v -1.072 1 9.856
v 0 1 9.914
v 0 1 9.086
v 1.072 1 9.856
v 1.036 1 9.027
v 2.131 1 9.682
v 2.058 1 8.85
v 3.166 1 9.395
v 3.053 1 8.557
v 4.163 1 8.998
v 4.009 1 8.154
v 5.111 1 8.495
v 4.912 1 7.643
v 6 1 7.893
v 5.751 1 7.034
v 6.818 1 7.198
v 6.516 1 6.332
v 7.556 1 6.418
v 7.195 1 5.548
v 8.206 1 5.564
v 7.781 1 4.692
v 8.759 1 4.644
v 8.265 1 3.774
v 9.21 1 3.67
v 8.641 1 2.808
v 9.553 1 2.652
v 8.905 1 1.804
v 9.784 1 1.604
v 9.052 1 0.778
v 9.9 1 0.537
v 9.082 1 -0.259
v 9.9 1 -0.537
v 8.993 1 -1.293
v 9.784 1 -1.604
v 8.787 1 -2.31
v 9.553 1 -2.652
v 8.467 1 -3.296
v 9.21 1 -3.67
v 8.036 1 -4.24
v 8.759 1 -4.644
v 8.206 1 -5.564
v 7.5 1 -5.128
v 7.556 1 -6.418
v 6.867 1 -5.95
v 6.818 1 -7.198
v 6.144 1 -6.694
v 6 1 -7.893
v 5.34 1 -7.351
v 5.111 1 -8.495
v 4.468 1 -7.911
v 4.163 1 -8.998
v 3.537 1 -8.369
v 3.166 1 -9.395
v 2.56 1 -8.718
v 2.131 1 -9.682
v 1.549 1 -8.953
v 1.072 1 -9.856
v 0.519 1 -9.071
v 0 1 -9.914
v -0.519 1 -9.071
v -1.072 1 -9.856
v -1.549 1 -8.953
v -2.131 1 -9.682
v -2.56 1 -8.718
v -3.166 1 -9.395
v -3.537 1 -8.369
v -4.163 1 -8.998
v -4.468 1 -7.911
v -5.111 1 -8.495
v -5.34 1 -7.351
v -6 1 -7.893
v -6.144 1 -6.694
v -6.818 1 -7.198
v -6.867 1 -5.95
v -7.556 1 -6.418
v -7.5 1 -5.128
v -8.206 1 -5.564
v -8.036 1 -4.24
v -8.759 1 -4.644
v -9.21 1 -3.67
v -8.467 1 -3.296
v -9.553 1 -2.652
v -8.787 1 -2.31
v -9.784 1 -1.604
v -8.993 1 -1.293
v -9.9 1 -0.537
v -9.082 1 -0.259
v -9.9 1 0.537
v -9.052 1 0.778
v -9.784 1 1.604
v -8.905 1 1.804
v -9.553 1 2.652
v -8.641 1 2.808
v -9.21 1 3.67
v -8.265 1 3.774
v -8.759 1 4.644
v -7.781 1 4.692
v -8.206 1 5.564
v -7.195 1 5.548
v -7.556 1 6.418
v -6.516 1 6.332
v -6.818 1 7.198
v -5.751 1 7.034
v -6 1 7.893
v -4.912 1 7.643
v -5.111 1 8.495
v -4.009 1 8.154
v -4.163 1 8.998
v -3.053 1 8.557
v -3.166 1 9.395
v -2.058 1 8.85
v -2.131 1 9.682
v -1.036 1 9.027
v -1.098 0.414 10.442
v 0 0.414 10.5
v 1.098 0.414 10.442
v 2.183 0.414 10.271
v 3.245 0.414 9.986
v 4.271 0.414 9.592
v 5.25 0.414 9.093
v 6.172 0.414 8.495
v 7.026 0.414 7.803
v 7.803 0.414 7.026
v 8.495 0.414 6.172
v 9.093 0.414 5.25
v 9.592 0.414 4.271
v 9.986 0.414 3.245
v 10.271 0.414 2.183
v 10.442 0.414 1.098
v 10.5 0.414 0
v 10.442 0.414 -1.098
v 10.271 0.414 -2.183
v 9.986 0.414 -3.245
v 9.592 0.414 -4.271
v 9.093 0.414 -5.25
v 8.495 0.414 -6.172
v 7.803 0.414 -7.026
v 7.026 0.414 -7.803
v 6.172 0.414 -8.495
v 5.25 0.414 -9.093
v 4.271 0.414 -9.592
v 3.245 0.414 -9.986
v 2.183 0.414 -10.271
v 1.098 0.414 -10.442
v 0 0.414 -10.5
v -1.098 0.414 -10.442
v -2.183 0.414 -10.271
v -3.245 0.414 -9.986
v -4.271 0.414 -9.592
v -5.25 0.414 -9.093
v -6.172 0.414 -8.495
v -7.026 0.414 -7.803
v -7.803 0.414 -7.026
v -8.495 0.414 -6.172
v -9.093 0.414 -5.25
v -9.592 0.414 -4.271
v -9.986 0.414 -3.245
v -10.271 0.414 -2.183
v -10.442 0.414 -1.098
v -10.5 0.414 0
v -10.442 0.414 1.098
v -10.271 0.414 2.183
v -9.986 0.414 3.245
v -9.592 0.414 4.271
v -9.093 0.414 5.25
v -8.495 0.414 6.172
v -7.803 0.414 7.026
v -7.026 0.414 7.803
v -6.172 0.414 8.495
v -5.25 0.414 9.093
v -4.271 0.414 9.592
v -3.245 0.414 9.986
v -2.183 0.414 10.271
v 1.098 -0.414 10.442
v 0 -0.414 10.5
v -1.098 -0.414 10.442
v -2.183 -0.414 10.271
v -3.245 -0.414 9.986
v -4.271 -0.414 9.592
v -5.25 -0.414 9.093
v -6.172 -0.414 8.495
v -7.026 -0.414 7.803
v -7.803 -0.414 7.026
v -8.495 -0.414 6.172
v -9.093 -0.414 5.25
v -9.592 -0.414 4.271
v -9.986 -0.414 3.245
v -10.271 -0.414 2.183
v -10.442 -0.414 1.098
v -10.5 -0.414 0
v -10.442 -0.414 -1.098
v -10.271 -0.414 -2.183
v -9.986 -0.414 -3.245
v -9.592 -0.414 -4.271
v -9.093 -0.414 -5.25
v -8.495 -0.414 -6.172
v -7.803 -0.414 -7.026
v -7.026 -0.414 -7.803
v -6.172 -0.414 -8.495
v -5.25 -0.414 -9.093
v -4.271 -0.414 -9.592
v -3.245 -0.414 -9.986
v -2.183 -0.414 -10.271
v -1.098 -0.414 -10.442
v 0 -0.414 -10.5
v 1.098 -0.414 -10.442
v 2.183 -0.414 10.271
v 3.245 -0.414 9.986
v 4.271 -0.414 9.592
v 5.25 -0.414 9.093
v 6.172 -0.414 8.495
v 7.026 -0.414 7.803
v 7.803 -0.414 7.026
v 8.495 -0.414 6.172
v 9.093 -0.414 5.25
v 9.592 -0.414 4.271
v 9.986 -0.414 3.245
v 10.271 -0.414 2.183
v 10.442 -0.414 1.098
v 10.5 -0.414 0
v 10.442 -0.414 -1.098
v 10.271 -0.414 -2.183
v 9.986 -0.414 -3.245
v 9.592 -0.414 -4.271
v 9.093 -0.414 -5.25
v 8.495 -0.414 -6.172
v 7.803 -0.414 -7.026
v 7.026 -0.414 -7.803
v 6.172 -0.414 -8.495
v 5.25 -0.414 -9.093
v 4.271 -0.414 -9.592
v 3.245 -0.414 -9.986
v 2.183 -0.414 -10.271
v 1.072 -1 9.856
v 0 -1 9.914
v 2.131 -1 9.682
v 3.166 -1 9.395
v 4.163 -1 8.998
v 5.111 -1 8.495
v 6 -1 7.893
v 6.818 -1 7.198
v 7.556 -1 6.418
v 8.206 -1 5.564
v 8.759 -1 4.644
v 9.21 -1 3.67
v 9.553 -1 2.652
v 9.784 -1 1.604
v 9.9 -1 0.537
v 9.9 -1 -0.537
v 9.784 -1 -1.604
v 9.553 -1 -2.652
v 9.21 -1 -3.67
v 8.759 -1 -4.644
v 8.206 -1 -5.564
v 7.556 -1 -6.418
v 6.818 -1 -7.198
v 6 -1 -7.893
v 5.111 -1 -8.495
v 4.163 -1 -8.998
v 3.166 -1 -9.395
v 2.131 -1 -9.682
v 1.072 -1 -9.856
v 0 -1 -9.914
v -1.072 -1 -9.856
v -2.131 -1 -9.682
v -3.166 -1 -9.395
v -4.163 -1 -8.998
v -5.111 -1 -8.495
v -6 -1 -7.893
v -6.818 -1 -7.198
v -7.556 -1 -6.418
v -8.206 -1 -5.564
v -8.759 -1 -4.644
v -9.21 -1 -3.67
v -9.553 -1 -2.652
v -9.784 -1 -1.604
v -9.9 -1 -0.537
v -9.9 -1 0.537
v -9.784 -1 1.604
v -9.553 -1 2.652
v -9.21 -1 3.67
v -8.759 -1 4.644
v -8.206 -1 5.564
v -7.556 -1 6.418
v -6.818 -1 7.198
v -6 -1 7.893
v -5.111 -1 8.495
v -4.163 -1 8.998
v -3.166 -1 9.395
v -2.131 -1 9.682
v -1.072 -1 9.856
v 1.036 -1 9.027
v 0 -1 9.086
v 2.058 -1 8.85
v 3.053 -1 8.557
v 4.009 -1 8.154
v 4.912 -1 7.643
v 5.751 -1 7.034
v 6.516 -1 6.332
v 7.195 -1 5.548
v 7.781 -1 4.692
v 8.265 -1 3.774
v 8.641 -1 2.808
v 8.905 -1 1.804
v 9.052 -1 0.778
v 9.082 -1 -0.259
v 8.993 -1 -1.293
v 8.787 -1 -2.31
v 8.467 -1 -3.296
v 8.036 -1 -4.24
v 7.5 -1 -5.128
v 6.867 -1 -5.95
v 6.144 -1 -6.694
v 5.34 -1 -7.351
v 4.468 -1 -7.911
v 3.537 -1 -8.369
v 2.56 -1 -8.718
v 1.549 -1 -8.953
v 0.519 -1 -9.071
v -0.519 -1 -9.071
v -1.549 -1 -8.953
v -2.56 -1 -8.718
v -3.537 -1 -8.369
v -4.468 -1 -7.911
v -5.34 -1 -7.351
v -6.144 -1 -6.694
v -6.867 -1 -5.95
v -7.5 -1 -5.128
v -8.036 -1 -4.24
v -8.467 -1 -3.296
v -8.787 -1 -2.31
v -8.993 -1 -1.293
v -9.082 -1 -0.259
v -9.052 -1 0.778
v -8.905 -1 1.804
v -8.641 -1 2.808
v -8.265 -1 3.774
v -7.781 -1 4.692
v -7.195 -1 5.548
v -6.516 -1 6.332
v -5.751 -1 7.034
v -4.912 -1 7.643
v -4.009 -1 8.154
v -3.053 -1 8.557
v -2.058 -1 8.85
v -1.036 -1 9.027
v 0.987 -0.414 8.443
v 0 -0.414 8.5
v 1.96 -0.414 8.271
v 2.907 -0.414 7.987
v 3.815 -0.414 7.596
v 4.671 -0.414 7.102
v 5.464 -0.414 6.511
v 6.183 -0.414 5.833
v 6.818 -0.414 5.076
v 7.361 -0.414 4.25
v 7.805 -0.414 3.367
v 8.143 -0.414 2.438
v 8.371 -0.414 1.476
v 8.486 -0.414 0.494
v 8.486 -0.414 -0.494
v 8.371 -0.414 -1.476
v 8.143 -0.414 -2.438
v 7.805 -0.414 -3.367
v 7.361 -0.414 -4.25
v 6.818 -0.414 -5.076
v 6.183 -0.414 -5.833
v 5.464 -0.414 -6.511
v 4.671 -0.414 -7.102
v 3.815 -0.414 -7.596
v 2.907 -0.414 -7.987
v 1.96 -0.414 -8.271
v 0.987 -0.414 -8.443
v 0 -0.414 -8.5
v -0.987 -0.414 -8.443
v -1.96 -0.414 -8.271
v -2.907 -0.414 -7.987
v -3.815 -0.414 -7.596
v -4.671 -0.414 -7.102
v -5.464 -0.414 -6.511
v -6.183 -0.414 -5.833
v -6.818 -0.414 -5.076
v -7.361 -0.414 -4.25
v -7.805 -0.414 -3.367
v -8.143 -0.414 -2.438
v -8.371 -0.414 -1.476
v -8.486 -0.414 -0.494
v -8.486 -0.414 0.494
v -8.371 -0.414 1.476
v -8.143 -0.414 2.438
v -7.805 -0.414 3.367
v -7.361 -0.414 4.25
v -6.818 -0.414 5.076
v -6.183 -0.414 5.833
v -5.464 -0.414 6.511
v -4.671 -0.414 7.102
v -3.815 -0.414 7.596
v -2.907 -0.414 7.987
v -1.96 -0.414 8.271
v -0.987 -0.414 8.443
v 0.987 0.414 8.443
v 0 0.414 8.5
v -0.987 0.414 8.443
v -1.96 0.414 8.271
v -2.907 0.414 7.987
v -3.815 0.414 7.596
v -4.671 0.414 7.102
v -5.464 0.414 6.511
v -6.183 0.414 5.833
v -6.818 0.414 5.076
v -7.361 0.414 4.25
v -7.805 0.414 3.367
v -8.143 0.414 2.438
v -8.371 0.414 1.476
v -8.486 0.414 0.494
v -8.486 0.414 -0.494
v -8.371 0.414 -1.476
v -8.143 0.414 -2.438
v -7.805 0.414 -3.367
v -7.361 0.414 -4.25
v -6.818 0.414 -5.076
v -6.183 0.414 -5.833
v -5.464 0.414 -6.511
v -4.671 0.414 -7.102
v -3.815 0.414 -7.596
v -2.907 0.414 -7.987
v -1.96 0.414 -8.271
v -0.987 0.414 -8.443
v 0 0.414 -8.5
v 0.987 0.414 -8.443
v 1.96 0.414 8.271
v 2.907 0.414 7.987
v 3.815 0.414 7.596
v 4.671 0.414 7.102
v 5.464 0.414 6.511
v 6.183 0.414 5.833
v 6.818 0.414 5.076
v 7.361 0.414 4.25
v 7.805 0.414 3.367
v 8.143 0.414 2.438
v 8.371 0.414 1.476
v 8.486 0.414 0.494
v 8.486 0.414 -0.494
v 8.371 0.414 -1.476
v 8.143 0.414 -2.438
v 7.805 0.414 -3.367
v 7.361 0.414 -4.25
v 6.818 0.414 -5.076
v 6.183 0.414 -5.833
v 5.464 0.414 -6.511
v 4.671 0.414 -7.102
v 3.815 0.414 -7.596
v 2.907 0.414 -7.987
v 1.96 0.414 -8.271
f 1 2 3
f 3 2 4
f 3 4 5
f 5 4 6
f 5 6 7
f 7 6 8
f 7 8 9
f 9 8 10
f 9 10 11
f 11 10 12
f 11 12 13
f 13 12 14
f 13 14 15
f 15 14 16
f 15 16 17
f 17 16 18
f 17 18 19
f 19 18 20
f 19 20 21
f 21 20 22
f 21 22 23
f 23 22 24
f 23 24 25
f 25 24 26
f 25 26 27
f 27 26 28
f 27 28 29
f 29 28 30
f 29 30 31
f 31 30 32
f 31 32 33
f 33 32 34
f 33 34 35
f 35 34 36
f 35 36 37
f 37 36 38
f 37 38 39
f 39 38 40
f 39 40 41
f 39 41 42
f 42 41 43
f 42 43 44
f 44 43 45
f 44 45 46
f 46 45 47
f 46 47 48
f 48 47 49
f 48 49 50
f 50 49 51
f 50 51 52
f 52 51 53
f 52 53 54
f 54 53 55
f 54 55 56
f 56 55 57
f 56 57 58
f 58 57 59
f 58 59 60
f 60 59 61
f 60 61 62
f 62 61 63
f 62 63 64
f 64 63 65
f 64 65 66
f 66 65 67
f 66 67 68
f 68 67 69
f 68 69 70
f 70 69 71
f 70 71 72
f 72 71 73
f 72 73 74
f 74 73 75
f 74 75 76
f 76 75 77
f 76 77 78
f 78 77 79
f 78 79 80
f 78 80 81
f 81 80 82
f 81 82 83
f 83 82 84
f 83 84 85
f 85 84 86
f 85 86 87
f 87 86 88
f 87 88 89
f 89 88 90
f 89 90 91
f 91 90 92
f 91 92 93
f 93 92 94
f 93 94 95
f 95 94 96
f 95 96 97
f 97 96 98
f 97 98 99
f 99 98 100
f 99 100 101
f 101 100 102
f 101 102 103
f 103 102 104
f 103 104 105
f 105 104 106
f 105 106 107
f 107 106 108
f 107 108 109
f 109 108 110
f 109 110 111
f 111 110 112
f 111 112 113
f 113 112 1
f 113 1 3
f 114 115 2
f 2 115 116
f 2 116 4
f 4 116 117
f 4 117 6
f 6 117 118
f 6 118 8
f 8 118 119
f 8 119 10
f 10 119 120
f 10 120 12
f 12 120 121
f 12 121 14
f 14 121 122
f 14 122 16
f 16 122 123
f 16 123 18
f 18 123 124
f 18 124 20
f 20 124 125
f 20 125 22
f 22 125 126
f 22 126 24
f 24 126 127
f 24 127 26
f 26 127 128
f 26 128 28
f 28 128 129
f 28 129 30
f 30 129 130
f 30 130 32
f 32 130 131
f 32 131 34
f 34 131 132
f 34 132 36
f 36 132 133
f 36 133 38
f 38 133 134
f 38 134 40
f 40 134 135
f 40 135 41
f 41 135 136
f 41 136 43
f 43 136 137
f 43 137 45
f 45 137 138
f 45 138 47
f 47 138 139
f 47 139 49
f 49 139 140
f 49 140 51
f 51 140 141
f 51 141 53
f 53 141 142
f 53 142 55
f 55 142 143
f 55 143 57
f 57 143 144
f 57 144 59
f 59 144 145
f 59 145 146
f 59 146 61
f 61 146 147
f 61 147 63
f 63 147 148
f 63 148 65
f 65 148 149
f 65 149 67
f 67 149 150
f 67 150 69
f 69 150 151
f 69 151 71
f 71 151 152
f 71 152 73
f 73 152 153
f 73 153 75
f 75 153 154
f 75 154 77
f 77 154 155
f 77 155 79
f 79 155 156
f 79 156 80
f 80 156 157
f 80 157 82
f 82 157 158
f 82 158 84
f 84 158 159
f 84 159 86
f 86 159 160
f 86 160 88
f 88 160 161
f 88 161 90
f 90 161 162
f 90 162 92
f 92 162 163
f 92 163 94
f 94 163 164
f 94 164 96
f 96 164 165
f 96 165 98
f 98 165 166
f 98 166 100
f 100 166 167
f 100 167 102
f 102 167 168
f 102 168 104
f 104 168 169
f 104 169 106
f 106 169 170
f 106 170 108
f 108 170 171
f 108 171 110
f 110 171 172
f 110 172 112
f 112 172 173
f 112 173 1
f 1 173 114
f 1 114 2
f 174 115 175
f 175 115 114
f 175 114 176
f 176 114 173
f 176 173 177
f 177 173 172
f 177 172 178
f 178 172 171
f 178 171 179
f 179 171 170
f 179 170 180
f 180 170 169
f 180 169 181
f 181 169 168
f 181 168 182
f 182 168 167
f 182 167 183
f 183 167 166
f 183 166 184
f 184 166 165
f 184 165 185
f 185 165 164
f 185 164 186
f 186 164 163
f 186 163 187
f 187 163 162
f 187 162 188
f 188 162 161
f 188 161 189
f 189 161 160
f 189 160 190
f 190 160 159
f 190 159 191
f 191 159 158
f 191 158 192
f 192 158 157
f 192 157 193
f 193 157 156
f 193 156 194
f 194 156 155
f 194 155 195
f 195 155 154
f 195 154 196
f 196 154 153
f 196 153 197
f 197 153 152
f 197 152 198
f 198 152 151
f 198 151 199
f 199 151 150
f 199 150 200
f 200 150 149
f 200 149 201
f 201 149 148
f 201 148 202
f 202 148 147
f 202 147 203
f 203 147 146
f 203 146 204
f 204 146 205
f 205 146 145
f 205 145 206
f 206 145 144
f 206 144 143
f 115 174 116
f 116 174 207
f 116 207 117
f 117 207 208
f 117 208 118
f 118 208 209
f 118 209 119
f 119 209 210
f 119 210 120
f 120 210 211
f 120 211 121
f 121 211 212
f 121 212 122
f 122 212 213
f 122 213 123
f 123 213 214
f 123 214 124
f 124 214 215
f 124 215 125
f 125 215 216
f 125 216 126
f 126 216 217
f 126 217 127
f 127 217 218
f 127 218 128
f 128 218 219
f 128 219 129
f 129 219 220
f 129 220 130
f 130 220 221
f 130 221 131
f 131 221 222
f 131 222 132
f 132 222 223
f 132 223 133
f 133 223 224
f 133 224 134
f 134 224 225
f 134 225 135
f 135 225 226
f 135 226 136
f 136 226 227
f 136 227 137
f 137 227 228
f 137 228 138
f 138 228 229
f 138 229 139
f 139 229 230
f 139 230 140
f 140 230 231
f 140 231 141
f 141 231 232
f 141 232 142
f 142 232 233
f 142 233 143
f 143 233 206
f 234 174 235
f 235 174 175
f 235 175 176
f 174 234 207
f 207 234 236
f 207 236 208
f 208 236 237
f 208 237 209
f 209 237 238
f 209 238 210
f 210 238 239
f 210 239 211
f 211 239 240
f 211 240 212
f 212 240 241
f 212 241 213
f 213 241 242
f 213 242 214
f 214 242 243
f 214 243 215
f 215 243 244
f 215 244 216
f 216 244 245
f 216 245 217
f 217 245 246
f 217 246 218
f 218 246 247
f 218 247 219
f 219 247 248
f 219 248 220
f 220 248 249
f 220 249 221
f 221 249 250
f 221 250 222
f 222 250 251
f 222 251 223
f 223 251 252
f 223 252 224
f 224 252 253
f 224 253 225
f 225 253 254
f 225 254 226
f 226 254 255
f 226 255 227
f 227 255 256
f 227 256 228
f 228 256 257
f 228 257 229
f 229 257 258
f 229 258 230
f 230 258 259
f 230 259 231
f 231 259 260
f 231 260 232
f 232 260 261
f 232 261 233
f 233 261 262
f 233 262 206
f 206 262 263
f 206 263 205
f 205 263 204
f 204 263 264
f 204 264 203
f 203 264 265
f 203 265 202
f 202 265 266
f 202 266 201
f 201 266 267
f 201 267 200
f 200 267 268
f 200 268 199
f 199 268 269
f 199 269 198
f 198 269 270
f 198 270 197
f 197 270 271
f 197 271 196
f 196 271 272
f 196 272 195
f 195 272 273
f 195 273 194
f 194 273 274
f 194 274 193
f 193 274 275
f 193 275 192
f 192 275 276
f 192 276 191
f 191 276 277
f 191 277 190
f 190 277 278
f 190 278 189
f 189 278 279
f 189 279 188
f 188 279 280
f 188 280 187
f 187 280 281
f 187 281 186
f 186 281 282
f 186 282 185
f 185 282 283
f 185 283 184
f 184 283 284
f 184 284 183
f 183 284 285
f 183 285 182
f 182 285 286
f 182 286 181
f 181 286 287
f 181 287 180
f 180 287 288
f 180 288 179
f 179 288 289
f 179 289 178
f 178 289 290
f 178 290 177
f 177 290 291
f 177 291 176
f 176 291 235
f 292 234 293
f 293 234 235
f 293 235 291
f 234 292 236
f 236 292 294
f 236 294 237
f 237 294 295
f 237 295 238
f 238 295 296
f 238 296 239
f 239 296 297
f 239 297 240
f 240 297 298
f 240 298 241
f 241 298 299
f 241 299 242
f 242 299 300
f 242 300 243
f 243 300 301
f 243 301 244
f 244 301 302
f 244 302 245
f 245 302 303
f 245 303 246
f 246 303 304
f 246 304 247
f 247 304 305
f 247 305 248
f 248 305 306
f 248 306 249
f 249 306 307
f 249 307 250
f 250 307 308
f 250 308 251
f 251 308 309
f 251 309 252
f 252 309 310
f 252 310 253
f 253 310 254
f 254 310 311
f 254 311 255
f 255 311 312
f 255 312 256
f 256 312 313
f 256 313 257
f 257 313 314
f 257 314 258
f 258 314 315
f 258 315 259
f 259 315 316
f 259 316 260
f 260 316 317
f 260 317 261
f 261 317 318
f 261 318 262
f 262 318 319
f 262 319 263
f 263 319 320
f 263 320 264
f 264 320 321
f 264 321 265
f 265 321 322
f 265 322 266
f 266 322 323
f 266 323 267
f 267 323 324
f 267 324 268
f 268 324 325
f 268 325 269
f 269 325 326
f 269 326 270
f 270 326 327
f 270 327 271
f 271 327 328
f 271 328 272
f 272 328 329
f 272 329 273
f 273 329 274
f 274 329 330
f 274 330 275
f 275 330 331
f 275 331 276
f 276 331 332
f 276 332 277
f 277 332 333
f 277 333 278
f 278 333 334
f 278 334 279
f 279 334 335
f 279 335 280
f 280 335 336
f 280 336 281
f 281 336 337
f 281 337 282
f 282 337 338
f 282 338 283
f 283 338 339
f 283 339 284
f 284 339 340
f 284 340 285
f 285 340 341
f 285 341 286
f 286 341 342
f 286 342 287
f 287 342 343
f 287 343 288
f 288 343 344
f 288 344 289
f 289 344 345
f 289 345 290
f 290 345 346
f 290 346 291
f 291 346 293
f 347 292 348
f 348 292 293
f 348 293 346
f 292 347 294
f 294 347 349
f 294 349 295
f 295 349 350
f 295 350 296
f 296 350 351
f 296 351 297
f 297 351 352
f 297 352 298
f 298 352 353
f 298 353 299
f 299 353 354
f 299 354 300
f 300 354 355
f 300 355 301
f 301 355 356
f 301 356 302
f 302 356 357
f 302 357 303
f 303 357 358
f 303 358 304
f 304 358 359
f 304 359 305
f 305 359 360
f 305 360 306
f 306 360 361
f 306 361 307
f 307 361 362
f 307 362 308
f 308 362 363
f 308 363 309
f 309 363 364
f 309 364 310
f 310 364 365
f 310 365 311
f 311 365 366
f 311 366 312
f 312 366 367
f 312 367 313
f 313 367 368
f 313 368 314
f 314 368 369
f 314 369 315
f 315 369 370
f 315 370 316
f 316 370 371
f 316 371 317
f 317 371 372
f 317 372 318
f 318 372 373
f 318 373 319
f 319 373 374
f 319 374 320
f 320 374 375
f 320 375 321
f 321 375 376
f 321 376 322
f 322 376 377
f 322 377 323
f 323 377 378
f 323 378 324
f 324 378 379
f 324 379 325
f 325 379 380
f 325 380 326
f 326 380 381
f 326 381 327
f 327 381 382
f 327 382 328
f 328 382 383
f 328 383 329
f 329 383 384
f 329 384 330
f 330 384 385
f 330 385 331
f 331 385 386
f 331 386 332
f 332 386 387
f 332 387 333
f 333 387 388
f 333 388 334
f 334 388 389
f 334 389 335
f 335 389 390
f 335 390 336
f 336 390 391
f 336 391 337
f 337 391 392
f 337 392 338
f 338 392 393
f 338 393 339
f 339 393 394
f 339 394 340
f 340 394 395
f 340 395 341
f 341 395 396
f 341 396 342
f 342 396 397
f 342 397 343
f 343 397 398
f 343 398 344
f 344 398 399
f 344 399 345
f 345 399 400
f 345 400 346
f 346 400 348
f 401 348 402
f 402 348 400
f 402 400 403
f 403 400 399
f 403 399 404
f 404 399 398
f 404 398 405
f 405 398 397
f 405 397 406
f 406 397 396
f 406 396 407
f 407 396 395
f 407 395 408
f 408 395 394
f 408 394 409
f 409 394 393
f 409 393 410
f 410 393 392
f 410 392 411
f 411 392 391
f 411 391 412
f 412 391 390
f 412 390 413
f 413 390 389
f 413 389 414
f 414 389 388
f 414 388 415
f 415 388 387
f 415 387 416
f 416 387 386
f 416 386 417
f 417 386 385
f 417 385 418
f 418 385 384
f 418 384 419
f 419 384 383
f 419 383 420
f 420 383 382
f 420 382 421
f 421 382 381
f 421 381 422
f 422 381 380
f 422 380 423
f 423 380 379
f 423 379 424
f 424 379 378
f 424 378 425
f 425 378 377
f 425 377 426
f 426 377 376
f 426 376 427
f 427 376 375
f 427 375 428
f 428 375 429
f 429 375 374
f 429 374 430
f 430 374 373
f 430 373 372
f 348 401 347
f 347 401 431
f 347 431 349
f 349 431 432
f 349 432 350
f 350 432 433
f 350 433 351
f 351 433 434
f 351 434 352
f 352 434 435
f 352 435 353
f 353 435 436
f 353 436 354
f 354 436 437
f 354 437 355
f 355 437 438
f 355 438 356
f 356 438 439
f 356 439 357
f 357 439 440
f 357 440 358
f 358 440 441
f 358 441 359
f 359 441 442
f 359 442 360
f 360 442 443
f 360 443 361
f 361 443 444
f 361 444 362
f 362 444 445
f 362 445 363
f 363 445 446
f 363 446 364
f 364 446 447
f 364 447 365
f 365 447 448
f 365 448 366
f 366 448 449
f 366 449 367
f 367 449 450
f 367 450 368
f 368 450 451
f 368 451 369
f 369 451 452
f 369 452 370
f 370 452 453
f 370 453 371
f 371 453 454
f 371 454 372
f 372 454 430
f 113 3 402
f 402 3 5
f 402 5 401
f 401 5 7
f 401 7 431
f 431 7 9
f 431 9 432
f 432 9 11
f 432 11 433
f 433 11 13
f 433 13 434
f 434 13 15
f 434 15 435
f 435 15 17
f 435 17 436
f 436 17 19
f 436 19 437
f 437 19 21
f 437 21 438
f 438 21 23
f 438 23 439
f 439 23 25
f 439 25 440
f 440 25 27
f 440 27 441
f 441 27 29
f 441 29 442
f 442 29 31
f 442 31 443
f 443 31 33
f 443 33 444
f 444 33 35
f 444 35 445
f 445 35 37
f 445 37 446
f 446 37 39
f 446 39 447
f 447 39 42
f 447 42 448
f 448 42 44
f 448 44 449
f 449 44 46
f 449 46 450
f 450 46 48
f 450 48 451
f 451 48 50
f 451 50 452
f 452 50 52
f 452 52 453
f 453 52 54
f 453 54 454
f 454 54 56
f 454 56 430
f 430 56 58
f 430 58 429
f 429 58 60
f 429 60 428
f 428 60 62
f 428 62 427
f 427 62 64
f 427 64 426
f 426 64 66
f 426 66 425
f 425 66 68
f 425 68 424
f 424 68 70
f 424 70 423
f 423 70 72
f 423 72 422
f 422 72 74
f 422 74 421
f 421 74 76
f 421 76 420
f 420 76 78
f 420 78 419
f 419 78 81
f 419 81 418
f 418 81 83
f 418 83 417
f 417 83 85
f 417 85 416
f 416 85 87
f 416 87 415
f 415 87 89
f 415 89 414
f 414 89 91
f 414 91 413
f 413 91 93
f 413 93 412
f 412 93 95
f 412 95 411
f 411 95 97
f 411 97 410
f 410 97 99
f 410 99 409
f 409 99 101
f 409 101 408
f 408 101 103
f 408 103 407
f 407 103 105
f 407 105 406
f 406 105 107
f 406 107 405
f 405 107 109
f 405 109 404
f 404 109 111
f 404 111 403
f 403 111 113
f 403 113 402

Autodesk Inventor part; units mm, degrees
ref_plane "YZ Plane" through (0, 0, 0) normal (1, 0, 0) x (0, 1, 0)
ref_plane "XZ Plane" through (0, 0, 0) normal (0, 1, 0) x (-1, 0, 0)
ref_plane "XY Plane" through (0, 0, 0) normal (0, 0, 1) x (1, 0, 0)
sketch "Sketch1" plane through (0, 0, 0) normal (1, 0, 0) x (0, 1, 0)
  line L0 (-0.4142, 8.5) -> (-1, 9.0858)
  line L1 (-1, 9.0858) -> (-1, 9.9142)
  line L2 (-1, 9.9142) -> (-0.4142, 10.5)
  line L3 (-0.4142, 10.5) -> (0.4142, 10.5)
  line L4 (0.4142, 10.5) -> (1, 9.9142)
  line L5 (1, 9.9142) -> (1, 9.0858)
  line L6 (1, 9.0858) -> (0.4142, 8.5)
  line L7 (0.4142, 8.5) -> (-0.4142, 8.5)
  line L8 (3.1428, 0) -> (-2.1354, 0)
  point P0 (0, 0)
  point P1 (0, 9.5)
  dimension "d2" = 2
  dimension "d3" = 0
  dimension "d5" = 8.5
revolve "Revolution1" add sketch "Sketch1" angle 360 about axis through (0, 3.1428, 0) along (0, -1, 0)
properties part number "Ring"
